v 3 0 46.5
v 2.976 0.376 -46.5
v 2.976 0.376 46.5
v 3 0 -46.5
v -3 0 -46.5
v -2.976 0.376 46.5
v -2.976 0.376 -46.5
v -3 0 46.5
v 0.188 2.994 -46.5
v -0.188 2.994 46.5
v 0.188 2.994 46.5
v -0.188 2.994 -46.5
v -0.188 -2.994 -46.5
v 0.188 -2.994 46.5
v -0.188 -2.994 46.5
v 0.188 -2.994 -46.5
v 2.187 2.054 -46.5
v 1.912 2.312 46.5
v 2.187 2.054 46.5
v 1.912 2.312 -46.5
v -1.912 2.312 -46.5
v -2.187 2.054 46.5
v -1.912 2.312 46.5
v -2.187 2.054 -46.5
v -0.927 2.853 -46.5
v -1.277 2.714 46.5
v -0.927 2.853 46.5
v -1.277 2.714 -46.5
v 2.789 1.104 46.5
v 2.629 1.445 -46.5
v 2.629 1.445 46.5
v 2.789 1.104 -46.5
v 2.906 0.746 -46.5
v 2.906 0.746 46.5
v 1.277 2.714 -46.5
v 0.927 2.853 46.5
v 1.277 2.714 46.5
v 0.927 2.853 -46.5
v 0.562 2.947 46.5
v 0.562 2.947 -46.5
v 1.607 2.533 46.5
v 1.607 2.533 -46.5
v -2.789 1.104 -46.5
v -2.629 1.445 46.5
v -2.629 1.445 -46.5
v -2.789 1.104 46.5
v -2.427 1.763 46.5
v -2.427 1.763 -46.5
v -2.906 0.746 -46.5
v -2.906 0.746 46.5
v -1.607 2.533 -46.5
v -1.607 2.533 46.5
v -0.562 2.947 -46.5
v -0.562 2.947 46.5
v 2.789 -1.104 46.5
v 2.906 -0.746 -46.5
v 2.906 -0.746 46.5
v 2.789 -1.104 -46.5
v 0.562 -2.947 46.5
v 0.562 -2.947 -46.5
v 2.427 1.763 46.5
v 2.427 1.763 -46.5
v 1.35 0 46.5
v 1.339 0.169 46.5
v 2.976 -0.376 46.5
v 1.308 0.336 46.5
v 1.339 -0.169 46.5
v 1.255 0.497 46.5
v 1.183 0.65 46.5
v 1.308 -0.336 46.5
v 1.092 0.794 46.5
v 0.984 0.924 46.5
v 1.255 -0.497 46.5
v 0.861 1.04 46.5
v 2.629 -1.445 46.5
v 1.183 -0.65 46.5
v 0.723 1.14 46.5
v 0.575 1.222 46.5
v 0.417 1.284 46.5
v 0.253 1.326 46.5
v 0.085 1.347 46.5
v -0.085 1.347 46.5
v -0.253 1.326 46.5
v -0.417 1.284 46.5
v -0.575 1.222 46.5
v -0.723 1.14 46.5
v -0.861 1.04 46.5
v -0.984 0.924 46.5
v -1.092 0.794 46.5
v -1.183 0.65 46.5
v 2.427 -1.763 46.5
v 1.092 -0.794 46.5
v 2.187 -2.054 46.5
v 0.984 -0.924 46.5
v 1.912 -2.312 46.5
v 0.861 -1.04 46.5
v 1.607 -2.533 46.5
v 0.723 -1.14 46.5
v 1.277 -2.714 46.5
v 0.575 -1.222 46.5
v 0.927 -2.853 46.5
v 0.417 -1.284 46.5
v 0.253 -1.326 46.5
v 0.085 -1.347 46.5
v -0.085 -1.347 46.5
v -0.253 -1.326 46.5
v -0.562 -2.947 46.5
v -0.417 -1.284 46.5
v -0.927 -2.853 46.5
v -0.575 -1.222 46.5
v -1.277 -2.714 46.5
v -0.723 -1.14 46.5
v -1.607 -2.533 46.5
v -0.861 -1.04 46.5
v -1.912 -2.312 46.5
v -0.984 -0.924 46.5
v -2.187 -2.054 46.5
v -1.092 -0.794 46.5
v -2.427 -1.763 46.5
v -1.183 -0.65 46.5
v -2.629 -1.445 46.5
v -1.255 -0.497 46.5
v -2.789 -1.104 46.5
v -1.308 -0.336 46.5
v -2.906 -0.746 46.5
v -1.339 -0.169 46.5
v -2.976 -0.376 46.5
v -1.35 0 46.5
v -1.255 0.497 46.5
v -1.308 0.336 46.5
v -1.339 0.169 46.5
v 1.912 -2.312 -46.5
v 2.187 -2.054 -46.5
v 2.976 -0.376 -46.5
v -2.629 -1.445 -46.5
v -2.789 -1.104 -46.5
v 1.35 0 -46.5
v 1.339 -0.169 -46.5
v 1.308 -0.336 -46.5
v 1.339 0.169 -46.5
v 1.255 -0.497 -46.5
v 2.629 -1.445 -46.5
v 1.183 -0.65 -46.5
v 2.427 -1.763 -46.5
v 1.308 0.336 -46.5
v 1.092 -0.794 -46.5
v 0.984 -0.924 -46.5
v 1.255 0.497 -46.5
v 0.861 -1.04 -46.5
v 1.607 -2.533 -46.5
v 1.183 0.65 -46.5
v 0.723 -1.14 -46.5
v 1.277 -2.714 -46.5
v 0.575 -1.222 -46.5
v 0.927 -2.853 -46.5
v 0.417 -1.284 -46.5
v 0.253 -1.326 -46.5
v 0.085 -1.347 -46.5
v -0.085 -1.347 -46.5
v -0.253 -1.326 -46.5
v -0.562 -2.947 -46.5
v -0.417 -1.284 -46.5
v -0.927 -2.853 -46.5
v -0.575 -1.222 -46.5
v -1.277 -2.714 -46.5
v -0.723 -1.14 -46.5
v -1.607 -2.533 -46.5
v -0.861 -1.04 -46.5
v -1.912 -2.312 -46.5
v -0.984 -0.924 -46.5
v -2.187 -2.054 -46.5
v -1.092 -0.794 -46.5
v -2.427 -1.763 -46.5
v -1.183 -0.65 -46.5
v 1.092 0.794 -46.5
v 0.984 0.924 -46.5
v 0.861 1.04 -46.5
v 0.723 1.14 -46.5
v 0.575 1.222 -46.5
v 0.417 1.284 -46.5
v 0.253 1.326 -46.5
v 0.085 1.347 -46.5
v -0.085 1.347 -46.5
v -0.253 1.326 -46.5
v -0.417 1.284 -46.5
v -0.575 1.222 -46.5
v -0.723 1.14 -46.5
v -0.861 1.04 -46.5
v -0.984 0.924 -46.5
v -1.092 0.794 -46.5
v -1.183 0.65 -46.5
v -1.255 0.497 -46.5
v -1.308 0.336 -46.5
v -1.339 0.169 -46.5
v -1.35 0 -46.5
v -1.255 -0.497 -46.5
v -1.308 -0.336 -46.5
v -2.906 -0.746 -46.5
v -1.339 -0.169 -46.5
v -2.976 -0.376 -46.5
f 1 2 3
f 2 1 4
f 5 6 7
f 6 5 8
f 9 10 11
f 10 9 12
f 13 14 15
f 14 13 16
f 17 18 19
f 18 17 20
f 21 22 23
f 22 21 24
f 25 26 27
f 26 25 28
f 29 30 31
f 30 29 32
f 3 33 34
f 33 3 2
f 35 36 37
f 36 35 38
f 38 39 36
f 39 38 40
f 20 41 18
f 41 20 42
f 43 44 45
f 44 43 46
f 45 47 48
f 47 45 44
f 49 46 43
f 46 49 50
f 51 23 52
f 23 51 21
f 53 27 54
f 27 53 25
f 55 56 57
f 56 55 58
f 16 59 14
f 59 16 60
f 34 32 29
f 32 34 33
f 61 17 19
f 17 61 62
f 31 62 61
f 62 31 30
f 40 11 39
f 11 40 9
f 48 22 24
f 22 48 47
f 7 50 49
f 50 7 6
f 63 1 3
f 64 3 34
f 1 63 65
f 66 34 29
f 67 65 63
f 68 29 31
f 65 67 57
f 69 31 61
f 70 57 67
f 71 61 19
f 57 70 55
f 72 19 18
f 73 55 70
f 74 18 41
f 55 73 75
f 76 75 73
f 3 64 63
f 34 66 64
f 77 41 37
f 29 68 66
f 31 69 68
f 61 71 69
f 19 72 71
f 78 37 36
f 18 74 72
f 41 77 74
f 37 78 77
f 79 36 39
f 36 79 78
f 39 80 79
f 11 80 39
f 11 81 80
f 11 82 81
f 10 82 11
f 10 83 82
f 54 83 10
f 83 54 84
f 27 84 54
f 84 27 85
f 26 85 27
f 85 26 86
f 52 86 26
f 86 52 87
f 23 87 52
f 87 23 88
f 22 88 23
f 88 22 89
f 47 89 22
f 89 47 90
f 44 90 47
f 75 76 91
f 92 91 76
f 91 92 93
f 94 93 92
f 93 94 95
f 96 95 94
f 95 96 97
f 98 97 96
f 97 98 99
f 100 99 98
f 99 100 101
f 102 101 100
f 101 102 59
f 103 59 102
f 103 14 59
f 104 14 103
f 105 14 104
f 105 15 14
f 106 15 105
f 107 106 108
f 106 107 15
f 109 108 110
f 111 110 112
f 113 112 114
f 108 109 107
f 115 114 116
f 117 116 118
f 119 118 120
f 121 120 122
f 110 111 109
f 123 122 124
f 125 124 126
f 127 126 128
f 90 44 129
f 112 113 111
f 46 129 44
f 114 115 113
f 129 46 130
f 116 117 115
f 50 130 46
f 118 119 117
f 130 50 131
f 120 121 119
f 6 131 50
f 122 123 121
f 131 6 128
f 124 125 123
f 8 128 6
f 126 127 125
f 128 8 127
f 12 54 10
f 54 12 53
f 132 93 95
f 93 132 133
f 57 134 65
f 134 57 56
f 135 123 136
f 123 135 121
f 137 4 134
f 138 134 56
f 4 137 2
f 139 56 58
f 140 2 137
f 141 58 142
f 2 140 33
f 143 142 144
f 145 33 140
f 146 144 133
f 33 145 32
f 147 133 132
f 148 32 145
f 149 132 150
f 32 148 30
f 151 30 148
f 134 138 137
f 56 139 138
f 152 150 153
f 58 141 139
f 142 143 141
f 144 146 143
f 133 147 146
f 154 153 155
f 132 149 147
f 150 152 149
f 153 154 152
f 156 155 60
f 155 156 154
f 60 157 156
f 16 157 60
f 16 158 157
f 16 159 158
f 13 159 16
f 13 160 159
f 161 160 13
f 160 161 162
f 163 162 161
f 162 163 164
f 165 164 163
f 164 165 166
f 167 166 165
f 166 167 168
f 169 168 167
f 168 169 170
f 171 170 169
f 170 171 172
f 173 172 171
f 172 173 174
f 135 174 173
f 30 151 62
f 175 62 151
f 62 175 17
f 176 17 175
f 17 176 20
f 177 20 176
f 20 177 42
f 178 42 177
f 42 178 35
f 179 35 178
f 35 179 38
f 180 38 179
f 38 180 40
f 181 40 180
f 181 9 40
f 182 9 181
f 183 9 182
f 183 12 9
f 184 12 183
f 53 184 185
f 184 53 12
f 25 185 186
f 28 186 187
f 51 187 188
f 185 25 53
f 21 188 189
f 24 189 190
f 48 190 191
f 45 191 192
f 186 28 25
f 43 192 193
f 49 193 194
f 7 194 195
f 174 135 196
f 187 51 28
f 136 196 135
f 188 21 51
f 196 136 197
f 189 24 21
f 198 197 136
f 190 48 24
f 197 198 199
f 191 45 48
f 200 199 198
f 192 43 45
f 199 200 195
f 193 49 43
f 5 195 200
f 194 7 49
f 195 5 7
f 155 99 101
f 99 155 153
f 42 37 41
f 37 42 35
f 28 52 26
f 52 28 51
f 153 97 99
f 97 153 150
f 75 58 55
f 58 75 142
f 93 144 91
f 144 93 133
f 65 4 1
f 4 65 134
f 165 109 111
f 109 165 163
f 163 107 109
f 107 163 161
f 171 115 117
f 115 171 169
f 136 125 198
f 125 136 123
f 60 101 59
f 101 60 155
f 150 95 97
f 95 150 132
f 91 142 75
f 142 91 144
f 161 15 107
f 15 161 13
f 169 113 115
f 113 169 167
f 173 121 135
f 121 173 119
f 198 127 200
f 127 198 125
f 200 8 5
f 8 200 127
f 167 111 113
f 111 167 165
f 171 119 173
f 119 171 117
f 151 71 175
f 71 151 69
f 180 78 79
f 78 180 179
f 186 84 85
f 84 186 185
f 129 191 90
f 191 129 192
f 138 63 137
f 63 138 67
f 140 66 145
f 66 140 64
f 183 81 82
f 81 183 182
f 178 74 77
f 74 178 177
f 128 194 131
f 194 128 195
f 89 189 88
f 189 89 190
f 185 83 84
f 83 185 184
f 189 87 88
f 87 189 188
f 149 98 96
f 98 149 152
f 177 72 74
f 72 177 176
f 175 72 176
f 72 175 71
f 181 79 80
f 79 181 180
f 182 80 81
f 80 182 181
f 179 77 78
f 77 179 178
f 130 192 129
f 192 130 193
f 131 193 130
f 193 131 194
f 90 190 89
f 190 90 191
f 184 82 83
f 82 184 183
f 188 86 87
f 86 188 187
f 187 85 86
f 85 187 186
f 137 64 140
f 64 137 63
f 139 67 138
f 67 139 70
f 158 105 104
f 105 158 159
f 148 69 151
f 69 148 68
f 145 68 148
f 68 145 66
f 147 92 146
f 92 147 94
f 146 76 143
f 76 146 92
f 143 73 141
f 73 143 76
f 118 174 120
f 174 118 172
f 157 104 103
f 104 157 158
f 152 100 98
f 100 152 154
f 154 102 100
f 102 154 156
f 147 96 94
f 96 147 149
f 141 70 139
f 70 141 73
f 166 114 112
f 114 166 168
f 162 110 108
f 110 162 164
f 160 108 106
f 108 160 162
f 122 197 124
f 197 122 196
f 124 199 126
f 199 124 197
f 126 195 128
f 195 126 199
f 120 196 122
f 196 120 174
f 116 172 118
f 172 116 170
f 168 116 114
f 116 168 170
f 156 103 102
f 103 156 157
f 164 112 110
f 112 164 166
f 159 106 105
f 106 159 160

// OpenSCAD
$fn = 50;


difference() {
	union() {
		translate(v = [0, 0, -46.5000000000]) {
			cylinder(h = 93, r = 3.0000000000);
		}
	}
	union() {
		translate(v = [0, 0, -100.0000000000]) {
			cylinder(h = 200, r = 1.3500000000);
		}
	}
}
